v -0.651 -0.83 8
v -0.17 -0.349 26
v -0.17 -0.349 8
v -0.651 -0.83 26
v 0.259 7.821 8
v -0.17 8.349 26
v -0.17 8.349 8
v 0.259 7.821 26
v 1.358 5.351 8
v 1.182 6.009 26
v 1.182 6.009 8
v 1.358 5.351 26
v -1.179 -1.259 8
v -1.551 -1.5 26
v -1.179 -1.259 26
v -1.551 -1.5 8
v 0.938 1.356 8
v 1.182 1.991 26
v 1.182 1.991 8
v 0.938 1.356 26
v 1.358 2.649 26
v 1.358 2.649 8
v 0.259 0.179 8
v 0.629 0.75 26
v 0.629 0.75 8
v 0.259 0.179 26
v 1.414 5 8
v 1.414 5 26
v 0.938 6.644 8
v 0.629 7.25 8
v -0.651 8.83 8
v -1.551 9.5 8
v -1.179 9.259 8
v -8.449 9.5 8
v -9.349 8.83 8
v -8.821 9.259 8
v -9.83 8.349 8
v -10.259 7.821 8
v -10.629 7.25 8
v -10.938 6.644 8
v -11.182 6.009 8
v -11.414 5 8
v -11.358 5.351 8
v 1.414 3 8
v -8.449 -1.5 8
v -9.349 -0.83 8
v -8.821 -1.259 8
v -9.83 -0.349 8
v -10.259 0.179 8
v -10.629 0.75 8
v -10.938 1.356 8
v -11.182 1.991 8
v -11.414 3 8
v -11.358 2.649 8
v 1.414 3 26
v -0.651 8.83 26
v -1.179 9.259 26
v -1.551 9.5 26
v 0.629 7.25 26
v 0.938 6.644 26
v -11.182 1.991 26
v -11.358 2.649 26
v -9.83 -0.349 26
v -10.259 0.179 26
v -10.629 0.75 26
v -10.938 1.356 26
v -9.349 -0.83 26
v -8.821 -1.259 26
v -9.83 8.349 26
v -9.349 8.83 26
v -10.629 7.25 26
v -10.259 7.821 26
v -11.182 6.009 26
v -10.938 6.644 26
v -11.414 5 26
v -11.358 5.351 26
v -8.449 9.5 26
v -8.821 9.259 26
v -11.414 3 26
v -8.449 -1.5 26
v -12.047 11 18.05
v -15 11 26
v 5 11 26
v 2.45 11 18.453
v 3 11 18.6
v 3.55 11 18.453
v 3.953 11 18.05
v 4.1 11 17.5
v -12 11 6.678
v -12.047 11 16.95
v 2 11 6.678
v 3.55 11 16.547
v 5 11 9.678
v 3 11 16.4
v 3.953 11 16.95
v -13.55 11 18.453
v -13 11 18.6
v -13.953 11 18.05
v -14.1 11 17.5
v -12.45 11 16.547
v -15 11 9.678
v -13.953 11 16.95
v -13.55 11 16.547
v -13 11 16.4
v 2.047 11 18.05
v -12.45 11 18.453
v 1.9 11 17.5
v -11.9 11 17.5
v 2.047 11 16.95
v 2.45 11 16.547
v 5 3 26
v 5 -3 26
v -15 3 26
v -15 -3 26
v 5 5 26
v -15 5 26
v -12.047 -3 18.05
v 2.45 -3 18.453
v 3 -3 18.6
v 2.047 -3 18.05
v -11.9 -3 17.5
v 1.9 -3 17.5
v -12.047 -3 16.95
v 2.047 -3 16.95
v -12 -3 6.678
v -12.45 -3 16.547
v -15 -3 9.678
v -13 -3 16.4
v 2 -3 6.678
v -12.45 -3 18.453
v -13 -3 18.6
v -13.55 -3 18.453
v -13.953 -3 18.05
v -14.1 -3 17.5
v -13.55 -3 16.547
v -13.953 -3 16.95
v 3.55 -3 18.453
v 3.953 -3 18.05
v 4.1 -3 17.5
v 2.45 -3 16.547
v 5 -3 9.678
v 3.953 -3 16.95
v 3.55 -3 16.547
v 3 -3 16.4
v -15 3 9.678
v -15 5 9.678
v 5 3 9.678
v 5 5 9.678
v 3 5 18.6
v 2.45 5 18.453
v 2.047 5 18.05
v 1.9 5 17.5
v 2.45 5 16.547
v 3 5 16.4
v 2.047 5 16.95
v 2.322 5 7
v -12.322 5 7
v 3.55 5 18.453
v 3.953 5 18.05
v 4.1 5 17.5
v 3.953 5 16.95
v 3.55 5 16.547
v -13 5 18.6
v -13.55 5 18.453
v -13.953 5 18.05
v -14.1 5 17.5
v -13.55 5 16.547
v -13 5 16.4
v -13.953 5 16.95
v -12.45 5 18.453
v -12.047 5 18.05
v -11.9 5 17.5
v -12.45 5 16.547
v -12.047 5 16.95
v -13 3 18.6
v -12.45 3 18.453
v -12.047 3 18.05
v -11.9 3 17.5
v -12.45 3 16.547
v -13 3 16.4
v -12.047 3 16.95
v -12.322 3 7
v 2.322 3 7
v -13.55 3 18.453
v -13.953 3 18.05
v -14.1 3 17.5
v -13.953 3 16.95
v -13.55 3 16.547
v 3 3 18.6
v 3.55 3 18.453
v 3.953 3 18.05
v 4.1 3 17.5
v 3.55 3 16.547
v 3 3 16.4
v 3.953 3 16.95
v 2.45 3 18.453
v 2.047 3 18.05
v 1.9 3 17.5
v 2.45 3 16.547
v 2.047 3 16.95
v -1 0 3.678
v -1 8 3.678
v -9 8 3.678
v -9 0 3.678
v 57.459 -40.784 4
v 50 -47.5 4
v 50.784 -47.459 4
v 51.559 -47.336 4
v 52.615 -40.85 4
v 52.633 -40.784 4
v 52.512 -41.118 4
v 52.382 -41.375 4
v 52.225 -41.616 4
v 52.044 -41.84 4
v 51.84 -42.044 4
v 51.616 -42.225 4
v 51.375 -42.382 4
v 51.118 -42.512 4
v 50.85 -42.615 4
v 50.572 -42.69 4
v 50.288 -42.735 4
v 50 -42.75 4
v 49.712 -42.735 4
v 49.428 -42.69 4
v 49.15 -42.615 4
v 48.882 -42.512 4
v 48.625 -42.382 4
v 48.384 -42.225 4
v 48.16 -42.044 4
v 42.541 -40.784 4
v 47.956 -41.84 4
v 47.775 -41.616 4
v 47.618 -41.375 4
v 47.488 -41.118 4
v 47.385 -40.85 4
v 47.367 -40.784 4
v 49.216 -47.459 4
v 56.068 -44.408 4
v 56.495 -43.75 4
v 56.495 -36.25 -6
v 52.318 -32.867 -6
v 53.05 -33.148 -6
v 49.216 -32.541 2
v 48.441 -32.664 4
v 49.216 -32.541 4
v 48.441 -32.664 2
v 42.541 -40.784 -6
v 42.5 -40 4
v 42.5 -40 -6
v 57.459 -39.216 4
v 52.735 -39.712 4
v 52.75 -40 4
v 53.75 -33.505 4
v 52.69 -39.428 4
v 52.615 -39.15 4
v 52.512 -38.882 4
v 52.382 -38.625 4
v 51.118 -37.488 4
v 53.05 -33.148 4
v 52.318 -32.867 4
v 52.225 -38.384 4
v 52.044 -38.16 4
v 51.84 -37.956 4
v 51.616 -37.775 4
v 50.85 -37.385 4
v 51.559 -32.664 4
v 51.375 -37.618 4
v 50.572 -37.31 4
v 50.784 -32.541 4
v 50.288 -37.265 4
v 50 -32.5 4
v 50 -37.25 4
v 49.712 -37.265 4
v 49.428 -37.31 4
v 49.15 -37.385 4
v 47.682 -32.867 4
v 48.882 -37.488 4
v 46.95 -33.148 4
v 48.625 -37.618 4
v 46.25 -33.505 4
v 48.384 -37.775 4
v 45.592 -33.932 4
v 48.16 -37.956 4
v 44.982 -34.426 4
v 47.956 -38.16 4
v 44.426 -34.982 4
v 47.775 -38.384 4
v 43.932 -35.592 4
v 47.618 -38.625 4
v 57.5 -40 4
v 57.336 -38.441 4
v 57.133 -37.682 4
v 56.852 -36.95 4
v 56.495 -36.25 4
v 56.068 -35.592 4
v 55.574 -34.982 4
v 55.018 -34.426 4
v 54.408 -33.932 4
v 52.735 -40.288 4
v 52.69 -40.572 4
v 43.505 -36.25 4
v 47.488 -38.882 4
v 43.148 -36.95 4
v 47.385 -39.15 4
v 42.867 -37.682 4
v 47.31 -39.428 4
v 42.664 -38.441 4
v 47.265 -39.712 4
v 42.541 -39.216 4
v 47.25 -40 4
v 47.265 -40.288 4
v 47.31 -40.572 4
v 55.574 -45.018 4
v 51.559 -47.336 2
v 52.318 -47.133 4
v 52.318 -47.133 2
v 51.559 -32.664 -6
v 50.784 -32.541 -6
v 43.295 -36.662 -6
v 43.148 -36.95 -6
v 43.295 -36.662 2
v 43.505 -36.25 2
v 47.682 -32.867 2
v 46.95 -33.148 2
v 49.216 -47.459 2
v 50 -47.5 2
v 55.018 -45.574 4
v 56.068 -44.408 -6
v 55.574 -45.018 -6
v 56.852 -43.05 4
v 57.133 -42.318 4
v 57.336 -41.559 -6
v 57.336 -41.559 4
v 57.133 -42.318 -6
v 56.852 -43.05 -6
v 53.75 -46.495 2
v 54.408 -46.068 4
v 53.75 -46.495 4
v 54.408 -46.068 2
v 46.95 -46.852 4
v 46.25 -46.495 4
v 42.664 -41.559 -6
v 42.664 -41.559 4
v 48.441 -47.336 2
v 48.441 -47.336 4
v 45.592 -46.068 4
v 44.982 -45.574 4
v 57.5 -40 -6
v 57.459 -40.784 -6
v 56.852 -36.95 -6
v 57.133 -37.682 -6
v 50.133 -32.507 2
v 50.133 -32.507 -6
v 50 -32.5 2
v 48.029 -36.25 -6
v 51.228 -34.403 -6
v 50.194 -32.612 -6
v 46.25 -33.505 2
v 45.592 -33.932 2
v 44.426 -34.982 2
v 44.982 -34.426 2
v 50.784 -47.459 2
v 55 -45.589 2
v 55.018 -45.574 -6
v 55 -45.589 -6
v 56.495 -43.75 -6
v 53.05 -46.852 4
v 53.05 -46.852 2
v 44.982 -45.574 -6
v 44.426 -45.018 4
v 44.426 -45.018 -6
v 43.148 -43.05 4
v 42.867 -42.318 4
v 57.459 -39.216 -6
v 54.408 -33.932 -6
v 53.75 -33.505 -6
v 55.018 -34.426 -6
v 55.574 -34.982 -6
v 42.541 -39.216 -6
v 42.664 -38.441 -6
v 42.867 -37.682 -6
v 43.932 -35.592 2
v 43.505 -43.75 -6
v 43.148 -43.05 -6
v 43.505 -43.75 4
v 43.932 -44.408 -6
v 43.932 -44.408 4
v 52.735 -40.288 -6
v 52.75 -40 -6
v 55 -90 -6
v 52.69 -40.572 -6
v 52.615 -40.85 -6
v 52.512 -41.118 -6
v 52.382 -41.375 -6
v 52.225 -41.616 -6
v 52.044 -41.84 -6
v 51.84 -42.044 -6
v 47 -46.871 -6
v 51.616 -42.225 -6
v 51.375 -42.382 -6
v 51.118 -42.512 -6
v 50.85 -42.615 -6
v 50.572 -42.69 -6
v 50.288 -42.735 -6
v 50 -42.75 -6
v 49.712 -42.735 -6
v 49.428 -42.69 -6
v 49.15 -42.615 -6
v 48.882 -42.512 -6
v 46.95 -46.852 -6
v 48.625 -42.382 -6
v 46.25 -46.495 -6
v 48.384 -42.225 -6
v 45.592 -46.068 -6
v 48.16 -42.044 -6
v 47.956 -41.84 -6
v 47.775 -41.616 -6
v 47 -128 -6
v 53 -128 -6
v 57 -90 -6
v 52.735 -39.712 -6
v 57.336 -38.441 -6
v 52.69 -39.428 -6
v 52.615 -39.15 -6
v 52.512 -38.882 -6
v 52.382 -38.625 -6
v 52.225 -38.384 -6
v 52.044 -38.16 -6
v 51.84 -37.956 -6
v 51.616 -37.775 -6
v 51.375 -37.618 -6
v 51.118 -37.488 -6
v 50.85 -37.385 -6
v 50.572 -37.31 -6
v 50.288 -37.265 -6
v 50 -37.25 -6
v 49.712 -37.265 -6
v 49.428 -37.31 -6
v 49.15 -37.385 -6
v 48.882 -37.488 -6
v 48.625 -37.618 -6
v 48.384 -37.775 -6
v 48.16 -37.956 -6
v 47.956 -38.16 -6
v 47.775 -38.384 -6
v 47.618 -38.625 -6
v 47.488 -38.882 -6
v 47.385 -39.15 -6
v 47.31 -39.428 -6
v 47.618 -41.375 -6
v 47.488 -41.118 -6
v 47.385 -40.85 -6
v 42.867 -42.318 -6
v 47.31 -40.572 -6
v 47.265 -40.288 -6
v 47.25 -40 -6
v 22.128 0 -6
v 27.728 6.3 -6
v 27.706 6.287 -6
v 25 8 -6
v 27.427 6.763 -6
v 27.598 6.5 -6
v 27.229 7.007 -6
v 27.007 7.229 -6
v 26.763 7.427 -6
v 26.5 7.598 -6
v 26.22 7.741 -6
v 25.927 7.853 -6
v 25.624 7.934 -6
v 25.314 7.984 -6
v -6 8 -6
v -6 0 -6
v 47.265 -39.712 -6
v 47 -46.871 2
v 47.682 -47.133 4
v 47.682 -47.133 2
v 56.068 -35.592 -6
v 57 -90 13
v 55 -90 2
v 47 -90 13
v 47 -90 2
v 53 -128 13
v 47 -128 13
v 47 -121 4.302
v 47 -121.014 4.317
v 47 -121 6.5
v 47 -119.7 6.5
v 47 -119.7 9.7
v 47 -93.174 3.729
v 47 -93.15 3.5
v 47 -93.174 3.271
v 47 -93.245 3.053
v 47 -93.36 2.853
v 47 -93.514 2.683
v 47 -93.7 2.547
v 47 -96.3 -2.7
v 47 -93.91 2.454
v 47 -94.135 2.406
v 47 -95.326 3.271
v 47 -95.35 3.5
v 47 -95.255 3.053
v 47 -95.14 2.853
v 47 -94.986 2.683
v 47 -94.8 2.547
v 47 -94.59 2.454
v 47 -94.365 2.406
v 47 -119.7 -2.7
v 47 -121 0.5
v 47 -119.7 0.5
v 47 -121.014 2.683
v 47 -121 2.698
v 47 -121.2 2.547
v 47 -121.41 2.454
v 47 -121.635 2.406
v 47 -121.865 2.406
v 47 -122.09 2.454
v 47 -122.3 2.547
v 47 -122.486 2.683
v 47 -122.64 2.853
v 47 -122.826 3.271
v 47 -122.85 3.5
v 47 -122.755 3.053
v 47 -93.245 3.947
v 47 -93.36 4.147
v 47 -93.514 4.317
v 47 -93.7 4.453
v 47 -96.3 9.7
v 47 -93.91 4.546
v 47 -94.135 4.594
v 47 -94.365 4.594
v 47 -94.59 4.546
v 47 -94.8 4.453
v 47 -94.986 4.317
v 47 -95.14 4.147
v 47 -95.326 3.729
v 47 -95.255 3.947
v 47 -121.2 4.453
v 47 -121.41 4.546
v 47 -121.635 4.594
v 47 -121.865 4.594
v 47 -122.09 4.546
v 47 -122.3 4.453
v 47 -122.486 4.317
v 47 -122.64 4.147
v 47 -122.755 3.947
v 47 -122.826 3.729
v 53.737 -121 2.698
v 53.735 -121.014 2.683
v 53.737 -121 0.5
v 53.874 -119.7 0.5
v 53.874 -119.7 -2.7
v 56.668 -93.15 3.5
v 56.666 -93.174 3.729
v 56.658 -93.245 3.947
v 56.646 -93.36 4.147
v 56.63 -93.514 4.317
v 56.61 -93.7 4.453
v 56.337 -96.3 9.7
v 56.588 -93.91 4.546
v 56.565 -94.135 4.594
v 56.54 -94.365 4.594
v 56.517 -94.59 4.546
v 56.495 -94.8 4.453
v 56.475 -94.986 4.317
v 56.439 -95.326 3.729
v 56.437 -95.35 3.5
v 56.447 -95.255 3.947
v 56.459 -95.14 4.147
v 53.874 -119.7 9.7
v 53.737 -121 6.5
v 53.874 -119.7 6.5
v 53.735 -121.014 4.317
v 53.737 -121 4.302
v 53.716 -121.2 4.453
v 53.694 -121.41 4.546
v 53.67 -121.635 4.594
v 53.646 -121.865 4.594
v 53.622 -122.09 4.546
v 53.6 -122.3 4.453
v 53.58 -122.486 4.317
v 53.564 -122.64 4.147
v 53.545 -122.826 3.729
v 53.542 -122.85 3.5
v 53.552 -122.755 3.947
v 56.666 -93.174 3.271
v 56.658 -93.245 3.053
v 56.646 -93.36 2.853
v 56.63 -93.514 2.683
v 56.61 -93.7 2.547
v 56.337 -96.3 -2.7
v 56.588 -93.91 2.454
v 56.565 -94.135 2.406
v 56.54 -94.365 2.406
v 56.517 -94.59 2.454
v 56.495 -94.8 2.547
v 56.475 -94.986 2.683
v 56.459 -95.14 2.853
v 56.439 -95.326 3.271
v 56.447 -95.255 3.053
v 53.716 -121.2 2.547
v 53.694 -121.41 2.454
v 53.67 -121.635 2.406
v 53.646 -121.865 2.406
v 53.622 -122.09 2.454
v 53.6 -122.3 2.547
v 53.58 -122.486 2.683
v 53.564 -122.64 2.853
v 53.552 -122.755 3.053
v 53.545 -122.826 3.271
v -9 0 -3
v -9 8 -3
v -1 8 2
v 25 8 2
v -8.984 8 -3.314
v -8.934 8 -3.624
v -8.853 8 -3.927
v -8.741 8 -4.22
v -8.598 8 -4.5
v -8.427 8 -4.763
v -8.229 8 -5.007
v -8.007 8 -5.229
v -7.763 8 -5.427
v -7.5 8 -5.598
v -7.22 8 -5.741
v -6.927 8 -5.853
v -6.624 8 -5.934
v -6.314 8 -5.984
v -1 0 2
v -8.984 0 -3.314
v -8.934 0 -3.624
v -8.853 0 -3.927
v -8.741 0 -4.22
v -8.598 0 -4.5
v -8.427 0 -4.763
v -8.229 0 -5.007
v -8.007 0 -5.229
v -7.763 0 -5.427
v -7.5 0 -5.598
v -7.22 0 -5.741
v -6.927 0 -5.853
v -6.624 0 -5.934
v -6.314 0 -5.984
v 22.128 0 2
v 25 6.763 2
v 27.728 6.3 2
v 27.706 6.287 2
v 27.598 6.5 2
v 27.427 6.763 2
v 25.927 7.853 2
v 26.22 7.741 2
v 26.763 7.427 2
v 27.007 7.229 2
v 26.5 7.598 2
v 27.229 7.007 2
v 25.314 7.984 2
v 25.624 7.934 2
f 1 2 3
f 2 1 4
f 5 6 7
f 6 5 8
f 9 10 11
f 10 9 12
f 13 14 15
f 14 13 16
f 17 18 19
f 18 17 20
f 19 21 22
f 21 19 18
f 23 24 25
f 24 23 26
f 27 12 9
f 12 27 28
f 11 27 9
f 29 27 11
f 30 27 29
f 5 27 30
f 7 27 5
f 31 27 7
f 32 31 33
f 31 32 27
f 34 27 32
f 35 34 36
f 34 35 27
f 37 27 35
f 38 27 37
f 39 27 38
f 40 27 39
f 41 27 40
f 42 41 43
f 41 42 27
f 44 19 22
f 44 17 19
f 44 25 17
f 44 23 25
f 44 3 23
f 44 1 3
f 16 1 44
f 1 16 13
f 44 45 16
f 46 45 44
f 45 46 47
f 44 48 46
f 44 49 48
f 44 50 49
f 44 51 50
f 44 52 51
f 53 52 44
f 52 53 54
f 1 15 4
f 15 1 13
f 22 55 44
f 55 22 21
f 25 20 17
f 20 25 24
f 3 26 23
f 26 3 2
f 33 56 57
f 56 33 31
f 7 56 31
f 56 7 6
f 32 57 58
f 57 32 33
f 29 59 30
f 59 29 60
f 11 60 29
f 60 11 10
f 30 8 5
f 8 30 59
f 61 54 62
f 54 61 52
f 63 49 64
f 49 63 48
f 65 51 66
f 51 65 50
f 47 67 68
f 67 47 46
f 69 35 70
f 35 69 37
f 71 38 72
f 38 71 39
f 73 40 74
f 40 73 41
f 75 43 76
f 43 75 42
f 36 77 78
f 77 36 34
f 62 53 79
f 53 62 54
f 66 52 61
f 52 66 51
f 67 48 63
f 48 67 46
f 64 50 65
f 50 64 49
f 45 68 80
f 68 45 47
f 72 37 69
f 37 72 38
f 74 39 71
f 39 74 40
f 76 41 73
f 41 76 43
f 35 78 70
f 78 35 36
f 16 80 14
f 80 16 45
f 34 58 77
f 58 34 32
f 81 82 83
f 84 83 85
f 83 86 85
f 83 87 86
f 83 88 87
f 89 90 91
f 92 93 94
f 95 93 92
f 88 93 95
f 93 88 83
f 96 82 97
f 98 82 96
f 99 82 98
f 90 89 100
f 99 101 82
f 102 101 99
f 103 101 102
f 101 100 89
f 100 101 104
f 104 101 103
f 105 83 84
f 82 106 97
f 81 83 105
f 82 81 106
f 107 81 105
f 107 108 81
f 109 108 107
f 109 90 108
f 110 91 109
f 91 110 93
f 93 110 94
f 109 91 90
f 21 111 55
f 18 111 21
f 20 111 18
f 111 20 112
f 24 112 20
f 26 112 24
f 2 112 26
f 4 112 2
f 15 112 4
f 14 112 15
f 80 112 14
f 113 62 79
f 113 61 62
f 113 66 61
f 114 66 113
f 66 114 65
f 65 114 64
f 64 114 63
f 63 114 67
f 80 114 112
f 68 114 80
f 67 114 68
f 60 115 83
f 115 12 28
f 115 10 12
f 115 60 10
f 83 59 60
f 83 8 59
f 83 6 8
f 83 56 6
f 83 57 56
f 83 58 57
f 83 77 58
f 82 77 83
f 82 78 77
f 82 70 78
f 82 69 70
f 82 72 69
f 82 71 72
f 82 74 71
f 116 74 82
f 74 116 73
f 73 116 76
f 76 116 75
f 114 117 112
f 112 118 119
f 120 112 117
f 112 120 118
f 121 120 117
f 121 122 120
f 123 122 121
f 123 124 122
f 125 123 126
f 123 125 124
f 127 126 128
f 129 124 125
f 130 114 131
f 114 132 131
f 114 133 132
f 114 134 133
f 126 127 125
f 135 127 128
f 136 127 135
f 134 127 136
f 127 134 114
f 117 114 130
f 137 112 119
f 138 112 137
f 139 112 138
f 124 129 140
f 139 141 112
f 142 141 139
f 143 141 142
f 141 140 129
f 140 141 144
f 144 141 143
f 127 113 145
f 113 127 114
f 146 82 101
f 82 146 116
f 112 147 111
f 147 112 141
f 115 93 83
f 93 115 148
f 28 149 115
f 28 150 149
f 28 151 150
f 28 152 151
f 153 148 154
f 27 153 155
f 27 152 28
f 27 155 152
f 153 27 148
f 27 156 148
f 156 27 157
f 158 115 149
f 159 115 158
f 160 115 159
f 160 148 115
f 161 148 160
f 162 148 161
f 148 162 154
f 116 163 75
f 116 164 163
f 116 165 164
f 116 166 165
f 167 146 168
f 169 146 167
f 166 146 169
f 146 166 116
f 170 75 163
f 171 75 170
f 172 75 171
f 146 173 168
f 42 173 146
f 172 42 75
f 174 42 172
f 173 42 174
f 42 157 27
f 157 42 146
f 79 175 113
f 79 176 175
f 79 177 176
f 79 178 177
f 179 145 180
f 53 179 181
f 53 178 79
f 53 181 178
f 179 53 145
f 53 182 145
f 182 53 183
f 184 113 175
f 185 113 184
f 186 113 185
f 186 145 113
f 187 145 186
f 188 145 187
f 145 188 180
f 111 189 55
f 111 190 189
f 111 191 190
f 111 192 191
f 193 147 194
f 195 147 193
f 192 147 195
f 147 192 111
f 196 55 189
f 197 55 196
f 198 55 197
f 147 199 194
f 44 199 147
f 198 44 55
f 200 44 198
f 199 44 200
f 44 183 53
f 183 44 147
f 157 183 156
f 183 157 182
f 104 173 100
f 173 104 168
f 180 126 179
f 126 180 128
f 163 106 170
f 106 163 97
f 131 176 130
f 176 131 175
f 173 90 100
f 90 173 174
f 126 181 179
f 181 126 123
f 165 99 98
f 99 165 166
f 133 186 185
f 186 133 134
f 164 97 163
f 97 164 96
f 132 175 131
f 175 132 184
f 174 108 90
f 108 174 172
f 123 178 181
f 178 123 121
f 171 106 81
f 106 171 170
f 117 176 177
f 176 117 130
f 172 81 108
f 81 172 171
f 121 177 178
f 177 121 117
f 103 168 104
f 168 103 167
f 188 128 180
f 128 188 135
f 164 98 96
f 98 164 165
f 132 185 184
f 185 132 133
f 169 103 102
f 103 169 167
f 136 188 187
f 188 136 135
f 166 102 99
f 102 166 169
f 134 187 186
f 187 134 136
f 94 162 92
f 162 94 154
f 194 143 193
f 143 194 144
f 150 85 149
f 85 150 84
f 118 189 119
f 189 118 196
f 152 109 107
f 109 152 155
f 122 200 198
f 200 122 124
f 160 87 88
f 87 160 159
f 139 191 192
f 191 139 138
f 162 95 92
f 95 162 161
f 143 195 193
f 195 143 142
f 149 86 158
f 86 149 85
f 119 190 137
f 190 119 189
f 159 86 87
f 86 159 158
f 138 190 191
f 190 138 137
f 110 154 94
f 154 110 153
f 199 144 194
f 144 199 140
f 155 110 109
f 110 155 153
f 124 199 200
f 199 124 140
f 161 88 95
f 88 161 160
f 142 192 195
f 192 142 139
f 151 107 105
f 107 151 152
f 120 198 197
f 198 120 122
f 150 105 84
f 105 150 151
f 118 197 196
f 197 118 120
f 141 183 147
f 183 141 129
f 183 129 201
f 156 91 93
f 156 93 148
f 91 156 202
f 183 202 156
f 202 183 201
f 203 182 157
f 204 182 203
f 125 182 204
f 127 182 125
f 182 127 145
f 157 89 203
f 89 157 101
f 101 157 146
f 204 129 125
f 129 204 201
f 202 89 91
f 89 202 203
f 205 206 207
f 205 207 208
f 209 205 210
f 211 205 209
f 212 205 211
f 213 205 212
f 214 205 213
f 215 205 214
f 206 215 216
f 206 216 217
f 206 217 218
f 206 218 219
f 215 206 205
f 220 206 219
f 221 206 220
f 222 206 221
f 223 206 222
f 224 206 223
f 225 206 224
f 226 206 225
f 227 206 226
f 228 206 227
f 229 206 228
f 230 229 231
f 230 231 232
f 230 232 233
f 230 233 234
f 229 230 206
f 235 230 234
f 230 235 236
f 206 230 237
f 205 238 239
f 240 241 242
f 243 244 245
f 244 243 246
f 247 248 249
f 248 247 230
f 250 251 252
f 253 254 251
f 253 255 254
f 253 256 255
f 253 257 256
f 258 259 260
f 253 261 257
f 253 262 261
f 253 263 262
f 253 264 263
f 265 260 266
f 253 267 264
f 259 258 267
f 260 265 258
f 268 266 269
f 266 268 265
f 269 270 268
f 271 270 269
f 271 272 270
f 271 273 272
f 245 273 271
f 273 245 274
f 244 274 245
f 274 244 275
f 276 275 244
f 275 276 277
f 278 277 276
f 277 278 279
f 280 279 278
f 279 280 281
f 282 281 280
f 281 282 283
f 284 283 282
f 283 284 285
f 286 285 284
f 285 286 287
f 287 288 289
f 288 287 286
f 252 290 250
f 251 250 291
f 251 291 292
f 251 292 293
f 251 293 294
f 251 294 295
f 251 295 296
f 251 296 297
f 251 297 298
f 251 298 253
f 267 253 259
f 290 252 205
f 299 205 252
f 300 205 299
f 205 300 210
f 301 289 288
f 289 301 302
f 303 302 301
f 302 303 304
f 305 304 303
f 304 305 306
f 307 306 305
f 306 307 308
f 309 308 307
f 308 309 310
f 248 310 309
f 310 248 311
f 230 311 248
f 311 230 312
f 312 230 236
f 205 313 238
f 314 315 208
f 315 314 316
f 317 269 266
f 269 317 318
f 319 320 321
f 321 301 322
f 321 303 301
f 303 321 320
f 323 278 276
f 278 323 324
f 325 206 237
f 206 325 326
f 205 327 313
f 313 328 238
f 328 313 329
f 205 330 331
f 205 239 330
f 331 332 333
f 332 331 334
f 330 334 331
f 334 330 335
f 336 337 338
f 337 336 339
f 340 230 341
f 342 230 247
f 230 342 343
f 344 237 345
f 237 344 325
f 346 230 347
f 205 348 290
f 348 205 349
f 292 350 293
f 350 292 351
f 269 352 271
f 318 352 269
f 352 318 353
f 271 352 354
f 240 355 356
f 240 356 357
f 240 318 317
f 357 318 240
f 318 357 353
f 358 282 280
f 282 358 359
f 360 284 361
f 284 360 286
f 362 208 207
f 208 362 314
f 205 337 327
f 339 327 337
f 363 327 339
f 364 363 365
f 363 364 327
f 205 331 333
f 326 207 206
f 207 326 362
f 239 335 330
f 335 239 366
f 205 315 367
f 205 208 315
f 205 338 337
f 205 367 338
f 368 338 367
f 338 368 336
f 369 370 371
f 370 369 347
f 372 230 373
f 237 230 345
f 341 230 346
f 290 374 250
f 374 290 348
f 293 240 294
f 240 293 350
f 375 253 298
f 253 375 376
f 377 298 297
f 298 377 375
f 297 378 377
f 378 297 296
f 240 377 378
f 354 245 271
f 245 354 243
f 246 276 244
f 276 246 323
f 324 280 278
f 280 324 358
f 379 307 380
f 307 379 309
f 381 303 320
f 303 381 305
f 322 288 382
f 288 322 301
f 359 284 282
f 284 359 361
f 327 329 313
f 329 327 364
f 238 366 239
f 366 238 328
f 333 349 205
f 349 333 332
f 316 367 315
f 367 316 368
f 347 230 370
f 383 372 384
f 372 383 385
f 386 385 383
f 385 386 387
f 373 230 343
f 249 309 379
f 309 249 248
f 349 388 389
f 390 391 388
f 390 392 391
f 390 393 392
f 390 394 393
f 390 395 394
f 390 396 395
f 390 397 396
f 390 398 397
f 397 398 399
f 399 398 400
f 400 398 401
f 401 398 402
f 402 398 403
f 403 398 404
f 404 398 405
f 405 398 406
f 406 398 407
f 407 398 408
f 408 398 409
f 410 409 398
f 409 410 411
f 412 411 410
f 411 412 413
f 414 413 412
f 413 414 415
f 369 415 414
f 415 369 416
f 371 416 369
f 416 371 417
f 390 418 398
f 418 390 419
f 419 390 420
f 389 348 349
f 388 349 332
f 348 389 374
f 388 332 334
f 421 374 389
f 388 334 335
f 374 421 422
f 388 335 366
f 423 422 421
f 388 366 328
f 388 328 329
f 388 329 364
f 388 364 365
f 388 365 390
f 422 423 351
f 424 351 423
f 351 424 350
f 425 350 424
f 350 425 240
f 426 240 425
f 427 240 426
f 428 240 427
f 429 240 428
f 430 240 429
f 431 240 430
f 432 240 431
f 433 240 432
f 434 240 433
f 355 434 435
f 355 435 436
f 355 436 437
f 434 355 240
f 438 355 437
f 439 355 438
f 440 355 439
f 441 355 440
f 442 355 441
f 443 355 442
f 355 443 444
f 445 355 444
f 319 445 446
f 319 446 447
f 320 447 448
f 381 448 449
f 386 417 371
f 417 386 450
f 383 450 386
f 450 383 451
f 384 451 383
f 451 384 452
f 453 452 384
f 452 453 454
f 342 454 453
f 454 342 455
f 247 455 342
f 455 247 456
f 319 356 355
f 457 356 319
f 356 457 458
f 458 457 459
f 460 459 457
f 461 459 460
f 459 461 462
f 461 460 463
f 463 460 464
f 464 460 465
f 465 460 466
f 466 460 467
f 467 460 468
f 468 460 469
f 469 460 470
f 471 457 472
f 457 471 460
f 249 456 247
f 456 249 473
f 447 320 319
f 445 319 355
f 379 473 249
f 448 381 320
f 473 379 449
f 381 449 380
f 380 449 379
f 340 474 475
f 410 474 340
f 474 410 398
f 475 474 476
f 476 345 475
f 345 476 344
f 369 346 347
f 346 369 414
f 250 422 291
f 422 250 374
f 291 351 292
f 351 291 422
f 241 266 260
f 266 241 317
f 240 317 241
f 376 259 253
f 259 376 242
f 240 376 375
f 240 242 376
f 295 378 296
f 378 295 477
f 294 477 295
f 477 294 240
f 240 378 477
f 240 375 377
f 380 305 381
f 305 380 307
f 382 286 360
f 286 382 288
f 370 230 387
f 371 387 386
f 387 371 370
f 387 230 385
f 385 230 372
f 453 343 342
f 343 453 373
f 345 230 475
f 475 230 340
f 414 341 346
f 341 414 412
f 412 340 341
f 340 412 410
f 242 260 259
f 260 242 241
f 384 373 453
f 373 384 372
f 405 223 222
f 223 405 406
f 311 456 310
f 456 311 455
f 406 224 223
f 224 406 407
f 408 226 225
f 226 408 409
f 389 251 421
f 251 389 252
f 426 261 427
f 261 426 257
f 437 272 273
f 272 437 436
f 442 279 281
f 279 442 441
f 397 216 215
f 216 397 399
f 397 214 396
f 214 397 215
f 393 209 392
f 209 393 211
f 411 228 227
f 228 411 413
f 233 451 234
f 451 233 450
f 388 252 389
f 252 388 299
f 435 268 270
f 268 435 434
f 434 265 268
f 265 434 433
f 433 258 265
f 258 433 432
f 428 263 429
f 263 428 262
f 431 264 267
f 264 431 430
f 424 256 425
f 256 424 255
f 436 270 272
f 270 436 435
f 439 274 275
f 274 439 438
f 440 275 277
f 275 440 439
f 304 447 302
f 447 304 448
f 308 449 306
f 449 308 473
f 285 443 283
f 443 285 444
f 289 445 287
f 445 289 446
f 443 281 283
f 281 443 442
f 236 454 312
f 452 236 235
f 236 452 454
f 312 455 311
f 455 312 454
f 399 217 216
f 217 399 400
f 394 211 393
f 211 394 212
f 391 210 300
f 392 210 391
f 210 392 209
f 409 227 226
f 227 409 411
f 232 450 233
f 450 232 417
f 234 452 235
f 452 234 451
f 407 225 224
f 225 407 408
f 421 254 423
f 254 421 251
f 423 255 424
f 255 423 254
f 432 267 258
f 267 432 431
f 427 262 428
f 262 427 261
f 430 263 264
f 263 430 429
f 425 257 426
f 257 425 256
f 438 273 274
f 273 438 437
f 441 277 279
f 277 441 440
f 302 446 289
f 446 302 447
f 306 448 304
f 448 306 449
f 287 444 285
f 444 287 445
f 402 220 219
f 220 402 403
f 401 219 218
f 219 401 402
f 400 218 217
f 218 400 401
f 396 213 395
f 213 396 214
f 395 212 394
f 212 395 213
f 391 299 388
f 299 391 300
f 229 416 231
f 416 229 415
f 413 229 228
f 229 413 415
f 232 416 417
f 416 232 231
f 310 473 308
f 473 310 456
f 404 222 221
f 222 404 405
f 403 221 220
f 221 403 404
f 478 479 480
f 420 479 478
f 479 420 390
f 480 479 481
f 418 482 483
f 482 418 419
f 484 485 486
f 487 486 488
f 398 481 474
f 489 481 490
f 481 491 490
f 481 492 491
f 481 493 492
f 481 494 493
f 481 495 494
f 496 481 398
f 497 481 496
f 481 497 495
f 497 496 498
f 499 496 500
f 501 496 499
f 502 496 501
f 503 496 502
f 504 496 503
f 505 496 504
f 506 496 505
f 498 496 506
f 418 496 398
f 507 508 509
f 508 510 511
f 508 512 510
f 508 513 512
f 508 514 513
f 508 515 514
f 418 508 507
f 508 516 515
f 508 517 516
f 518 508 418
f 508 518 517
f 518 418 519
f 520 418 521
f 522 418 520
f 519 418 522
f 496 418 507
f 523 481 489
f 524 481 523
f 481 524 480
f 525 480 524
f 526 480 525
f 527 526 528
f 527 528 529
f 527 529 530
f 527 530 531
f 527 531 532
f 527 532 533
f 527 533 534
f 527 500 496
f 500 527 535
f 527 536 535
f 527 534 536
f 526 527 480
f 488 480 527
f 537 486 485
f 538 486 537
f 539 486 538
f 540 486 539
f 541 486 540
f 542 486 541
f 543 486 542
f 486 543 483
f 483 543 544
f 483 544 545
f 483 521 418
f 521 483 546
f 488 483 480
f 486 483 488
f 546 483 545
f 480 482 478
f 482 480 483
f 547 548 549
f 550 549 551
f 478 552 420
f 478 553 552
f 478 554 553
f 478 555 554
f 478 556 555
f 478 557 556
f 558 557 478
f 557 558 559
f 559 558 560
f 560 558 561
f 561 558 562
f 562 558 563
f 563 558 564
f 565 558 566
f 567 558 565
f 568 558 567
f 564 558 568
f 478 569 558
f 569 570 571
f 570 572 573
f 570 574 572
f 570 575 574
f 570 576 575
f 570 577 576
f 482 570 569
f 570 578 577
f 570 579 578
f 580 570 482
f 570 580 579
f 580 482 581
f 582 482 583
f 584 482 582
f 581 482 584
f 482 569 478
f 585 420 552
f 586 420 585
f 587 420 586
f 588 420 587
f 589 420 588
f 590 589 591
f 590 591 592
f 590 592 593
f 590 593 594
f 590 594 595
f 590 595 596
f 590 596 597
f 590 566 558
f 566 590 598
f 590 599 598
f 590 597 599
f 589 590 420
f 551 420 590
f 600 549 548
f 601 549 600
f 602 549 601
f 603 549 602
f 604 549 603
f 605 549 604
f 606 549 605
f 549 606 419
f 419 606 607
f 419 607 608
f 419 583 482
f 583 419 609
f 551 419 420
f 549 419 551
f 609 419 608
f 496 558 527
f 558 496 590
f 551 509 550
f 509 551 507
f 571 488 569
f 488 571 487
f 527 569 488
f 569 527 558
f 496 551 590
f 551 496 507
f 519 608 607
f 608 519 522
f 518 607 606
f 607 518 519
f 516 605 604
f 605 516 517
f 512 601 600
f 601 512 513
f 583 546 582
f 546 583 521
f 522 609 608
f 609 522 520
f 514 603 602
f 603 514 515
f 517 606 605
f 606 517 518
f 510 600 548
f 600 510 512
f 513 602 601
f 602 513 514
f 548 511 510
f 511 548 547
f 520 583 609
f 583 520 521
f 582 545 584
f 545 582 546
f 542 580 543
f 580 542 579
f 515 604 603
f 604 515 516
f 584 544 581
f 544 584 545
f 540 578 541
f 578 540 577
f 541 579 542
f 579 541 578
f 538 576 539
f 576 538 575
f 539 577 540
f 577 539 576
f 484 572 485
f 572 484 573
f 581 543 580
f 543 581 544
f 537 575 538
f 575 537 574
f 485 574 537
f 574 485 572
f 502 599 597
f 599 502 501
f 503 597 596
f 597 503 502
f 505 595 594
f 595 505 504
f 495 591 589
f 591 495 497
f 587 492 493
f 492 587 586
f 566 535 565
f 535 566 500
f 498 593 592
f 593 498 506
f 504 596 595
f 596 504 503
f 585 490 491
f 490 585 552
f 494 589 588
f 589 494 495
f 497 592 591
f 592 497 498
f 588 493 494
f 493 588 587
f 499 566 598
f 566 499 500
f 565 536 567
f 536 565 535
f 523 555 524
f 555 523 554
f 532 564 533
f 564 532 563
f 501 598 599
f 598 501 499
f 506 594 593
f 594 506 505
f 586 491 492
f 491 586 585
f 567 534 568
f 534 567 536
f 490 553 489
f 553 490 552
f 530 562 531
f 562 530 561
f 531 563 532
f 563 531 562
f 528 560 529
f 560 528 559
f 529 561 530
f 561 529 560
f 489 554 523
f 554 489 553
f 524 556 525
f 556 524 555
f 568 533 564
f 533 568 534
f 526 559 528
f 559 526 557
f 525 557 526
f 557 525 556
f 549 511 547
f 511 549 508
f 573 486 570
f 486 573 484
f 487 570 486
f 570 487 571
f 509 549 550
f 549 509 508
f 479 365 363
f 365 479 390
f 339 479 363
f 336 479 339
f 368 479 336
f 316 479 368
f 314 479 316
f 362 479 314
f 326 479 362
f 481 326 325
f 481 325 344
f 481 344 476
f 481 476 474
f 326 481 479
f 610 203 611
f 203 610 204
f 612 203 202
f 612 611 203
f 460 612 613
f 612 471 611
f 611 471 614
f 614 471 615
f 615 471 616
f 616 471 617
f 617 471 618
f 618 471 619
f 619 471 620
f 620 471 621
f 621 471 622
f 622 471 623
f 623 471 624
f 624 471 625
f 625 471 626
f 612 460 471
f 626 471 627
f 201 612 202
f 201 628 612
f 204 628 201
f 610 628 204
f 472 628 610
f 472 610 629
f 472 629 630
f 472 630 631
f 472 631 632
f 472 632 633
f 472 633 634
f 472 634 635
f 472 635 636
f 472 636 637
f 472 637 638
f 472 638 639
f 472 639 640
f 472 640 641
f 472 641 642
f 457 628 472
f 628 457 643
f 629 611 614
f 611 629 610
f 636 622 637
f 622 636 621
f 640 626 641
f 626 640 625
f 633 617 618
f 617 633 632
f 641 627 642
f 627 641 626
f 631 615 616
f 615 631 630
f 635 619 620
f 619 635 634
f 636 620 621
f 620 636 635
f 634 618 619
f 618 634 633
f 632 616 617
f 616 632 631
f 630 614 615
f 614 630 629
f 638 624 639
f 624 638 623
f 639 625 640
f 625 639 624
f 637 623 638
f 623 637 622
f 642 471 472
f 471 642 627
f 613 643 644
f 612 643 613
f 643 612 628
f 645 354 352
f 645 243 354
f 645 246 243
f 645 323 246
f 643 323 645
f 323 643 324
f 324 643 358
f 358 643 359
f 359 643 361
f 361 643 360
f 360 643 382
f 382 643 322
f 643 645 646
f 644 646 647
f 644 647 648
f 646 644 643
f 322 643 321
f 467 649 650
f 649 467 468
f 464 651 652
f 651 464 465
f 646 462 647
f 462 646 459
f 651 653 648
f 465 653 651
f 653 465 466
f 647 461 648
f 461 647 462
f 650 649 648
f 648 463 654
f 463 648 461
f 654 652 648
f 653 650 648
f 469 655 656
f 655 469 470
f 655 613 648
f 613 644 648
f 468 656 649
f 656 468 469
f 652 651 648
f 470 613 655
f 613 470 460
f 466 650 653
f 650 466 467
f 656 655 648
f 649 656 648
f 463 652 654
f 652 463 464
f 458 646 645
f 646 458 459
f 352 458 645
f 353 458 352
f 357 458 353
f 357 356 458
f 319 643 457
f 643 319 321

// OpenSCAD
rotate([-90,0,0])
{
rotate([90,90,0])translate([-4,-5,3])clamp();

$fn=60;

translate([-9,-7,0])cube([8,10,8]);
translate([-6,3,0])rotate([0,0,-90])
cylinder(d=6,h=8);
translate([-6,-2,0])cube([31,8,8]);
translate([25,6,5])rotate([90,0,0])
cylinder(d=6,h=8);
translate([20.8,-2,2.3])rotate([0,60,0])
cube([47,8,8]);
difference(){
translate([50,-4,-40])rotate([-90,0,0])
cylinder(d=15,h=10);
translate([50,-5,-40])rotate([-90,0,0])
cylinder(d=5.5,h=12);
}
translate([47,0,-45])
rotate([0,90,0])
{
    translate([0,-2,0])cube([47,8,8]);
    translate([63,-3.5,0])rotate([0,0,0])
    servo_bracket();
}
}

module clamp(){
difference(){
translate([-7,-10,0])
cube([14,20,23]);
difference(){
    translate([0,0,5])cylinder(d=13,h=25,$fn=60);
    translate([6.5,0,12])cube([2,12,25],center=true);
    translate([-6.5,0,12])cube([2,12,25],center=true);
}
translate([-1,-11,4])cube([2,22,25]);
translate([-9,-8,14.5])rotate([0,90,0])
cylinder(d=2.2,h=21,$fn=12);
translate([-9,8,14.5])rotate([0,90,0])
cylinder(d=2.2,h=21,$fn=12);
translate([0,21,0])rotate([45,0,0])cube(size=[25,25,25],center=true);
translate([0,-21,0])rotate([45,0,0])cube(size=[25,25,25],center=true);
translate([21,0,0])rotate([0,0,90])rotate([45,0,0])
cube(size=[25,25,25],center=true);
translate([-21,0,0])rotate([0,0,90])rotate([45,0,0])
cube(size=[25,25,25],center=true);
}
}

module servo_bracket(){
difference(){
union(){
translate([1,0,3])cube([38,19,6],center=true);
translate([0,9.5,2])
rotate([90,0,0])linear_extrude(height=19)
polygon([[-18,0],[20,4],[-18,8]]);
translate([13.75,0,0])cylinder(d=8,h=2,$fn=60);
}
cube([23.4,12.4,50],center=true);
translate([13.75,0,-1])cylinder(d=2.2,h=60,$fn=30);
translate([-13.75,0,-1])cylinder(d=2.2,h=50,$fn=30);
translate([7,-3,-1])cube([6,6,12]);
}
}
